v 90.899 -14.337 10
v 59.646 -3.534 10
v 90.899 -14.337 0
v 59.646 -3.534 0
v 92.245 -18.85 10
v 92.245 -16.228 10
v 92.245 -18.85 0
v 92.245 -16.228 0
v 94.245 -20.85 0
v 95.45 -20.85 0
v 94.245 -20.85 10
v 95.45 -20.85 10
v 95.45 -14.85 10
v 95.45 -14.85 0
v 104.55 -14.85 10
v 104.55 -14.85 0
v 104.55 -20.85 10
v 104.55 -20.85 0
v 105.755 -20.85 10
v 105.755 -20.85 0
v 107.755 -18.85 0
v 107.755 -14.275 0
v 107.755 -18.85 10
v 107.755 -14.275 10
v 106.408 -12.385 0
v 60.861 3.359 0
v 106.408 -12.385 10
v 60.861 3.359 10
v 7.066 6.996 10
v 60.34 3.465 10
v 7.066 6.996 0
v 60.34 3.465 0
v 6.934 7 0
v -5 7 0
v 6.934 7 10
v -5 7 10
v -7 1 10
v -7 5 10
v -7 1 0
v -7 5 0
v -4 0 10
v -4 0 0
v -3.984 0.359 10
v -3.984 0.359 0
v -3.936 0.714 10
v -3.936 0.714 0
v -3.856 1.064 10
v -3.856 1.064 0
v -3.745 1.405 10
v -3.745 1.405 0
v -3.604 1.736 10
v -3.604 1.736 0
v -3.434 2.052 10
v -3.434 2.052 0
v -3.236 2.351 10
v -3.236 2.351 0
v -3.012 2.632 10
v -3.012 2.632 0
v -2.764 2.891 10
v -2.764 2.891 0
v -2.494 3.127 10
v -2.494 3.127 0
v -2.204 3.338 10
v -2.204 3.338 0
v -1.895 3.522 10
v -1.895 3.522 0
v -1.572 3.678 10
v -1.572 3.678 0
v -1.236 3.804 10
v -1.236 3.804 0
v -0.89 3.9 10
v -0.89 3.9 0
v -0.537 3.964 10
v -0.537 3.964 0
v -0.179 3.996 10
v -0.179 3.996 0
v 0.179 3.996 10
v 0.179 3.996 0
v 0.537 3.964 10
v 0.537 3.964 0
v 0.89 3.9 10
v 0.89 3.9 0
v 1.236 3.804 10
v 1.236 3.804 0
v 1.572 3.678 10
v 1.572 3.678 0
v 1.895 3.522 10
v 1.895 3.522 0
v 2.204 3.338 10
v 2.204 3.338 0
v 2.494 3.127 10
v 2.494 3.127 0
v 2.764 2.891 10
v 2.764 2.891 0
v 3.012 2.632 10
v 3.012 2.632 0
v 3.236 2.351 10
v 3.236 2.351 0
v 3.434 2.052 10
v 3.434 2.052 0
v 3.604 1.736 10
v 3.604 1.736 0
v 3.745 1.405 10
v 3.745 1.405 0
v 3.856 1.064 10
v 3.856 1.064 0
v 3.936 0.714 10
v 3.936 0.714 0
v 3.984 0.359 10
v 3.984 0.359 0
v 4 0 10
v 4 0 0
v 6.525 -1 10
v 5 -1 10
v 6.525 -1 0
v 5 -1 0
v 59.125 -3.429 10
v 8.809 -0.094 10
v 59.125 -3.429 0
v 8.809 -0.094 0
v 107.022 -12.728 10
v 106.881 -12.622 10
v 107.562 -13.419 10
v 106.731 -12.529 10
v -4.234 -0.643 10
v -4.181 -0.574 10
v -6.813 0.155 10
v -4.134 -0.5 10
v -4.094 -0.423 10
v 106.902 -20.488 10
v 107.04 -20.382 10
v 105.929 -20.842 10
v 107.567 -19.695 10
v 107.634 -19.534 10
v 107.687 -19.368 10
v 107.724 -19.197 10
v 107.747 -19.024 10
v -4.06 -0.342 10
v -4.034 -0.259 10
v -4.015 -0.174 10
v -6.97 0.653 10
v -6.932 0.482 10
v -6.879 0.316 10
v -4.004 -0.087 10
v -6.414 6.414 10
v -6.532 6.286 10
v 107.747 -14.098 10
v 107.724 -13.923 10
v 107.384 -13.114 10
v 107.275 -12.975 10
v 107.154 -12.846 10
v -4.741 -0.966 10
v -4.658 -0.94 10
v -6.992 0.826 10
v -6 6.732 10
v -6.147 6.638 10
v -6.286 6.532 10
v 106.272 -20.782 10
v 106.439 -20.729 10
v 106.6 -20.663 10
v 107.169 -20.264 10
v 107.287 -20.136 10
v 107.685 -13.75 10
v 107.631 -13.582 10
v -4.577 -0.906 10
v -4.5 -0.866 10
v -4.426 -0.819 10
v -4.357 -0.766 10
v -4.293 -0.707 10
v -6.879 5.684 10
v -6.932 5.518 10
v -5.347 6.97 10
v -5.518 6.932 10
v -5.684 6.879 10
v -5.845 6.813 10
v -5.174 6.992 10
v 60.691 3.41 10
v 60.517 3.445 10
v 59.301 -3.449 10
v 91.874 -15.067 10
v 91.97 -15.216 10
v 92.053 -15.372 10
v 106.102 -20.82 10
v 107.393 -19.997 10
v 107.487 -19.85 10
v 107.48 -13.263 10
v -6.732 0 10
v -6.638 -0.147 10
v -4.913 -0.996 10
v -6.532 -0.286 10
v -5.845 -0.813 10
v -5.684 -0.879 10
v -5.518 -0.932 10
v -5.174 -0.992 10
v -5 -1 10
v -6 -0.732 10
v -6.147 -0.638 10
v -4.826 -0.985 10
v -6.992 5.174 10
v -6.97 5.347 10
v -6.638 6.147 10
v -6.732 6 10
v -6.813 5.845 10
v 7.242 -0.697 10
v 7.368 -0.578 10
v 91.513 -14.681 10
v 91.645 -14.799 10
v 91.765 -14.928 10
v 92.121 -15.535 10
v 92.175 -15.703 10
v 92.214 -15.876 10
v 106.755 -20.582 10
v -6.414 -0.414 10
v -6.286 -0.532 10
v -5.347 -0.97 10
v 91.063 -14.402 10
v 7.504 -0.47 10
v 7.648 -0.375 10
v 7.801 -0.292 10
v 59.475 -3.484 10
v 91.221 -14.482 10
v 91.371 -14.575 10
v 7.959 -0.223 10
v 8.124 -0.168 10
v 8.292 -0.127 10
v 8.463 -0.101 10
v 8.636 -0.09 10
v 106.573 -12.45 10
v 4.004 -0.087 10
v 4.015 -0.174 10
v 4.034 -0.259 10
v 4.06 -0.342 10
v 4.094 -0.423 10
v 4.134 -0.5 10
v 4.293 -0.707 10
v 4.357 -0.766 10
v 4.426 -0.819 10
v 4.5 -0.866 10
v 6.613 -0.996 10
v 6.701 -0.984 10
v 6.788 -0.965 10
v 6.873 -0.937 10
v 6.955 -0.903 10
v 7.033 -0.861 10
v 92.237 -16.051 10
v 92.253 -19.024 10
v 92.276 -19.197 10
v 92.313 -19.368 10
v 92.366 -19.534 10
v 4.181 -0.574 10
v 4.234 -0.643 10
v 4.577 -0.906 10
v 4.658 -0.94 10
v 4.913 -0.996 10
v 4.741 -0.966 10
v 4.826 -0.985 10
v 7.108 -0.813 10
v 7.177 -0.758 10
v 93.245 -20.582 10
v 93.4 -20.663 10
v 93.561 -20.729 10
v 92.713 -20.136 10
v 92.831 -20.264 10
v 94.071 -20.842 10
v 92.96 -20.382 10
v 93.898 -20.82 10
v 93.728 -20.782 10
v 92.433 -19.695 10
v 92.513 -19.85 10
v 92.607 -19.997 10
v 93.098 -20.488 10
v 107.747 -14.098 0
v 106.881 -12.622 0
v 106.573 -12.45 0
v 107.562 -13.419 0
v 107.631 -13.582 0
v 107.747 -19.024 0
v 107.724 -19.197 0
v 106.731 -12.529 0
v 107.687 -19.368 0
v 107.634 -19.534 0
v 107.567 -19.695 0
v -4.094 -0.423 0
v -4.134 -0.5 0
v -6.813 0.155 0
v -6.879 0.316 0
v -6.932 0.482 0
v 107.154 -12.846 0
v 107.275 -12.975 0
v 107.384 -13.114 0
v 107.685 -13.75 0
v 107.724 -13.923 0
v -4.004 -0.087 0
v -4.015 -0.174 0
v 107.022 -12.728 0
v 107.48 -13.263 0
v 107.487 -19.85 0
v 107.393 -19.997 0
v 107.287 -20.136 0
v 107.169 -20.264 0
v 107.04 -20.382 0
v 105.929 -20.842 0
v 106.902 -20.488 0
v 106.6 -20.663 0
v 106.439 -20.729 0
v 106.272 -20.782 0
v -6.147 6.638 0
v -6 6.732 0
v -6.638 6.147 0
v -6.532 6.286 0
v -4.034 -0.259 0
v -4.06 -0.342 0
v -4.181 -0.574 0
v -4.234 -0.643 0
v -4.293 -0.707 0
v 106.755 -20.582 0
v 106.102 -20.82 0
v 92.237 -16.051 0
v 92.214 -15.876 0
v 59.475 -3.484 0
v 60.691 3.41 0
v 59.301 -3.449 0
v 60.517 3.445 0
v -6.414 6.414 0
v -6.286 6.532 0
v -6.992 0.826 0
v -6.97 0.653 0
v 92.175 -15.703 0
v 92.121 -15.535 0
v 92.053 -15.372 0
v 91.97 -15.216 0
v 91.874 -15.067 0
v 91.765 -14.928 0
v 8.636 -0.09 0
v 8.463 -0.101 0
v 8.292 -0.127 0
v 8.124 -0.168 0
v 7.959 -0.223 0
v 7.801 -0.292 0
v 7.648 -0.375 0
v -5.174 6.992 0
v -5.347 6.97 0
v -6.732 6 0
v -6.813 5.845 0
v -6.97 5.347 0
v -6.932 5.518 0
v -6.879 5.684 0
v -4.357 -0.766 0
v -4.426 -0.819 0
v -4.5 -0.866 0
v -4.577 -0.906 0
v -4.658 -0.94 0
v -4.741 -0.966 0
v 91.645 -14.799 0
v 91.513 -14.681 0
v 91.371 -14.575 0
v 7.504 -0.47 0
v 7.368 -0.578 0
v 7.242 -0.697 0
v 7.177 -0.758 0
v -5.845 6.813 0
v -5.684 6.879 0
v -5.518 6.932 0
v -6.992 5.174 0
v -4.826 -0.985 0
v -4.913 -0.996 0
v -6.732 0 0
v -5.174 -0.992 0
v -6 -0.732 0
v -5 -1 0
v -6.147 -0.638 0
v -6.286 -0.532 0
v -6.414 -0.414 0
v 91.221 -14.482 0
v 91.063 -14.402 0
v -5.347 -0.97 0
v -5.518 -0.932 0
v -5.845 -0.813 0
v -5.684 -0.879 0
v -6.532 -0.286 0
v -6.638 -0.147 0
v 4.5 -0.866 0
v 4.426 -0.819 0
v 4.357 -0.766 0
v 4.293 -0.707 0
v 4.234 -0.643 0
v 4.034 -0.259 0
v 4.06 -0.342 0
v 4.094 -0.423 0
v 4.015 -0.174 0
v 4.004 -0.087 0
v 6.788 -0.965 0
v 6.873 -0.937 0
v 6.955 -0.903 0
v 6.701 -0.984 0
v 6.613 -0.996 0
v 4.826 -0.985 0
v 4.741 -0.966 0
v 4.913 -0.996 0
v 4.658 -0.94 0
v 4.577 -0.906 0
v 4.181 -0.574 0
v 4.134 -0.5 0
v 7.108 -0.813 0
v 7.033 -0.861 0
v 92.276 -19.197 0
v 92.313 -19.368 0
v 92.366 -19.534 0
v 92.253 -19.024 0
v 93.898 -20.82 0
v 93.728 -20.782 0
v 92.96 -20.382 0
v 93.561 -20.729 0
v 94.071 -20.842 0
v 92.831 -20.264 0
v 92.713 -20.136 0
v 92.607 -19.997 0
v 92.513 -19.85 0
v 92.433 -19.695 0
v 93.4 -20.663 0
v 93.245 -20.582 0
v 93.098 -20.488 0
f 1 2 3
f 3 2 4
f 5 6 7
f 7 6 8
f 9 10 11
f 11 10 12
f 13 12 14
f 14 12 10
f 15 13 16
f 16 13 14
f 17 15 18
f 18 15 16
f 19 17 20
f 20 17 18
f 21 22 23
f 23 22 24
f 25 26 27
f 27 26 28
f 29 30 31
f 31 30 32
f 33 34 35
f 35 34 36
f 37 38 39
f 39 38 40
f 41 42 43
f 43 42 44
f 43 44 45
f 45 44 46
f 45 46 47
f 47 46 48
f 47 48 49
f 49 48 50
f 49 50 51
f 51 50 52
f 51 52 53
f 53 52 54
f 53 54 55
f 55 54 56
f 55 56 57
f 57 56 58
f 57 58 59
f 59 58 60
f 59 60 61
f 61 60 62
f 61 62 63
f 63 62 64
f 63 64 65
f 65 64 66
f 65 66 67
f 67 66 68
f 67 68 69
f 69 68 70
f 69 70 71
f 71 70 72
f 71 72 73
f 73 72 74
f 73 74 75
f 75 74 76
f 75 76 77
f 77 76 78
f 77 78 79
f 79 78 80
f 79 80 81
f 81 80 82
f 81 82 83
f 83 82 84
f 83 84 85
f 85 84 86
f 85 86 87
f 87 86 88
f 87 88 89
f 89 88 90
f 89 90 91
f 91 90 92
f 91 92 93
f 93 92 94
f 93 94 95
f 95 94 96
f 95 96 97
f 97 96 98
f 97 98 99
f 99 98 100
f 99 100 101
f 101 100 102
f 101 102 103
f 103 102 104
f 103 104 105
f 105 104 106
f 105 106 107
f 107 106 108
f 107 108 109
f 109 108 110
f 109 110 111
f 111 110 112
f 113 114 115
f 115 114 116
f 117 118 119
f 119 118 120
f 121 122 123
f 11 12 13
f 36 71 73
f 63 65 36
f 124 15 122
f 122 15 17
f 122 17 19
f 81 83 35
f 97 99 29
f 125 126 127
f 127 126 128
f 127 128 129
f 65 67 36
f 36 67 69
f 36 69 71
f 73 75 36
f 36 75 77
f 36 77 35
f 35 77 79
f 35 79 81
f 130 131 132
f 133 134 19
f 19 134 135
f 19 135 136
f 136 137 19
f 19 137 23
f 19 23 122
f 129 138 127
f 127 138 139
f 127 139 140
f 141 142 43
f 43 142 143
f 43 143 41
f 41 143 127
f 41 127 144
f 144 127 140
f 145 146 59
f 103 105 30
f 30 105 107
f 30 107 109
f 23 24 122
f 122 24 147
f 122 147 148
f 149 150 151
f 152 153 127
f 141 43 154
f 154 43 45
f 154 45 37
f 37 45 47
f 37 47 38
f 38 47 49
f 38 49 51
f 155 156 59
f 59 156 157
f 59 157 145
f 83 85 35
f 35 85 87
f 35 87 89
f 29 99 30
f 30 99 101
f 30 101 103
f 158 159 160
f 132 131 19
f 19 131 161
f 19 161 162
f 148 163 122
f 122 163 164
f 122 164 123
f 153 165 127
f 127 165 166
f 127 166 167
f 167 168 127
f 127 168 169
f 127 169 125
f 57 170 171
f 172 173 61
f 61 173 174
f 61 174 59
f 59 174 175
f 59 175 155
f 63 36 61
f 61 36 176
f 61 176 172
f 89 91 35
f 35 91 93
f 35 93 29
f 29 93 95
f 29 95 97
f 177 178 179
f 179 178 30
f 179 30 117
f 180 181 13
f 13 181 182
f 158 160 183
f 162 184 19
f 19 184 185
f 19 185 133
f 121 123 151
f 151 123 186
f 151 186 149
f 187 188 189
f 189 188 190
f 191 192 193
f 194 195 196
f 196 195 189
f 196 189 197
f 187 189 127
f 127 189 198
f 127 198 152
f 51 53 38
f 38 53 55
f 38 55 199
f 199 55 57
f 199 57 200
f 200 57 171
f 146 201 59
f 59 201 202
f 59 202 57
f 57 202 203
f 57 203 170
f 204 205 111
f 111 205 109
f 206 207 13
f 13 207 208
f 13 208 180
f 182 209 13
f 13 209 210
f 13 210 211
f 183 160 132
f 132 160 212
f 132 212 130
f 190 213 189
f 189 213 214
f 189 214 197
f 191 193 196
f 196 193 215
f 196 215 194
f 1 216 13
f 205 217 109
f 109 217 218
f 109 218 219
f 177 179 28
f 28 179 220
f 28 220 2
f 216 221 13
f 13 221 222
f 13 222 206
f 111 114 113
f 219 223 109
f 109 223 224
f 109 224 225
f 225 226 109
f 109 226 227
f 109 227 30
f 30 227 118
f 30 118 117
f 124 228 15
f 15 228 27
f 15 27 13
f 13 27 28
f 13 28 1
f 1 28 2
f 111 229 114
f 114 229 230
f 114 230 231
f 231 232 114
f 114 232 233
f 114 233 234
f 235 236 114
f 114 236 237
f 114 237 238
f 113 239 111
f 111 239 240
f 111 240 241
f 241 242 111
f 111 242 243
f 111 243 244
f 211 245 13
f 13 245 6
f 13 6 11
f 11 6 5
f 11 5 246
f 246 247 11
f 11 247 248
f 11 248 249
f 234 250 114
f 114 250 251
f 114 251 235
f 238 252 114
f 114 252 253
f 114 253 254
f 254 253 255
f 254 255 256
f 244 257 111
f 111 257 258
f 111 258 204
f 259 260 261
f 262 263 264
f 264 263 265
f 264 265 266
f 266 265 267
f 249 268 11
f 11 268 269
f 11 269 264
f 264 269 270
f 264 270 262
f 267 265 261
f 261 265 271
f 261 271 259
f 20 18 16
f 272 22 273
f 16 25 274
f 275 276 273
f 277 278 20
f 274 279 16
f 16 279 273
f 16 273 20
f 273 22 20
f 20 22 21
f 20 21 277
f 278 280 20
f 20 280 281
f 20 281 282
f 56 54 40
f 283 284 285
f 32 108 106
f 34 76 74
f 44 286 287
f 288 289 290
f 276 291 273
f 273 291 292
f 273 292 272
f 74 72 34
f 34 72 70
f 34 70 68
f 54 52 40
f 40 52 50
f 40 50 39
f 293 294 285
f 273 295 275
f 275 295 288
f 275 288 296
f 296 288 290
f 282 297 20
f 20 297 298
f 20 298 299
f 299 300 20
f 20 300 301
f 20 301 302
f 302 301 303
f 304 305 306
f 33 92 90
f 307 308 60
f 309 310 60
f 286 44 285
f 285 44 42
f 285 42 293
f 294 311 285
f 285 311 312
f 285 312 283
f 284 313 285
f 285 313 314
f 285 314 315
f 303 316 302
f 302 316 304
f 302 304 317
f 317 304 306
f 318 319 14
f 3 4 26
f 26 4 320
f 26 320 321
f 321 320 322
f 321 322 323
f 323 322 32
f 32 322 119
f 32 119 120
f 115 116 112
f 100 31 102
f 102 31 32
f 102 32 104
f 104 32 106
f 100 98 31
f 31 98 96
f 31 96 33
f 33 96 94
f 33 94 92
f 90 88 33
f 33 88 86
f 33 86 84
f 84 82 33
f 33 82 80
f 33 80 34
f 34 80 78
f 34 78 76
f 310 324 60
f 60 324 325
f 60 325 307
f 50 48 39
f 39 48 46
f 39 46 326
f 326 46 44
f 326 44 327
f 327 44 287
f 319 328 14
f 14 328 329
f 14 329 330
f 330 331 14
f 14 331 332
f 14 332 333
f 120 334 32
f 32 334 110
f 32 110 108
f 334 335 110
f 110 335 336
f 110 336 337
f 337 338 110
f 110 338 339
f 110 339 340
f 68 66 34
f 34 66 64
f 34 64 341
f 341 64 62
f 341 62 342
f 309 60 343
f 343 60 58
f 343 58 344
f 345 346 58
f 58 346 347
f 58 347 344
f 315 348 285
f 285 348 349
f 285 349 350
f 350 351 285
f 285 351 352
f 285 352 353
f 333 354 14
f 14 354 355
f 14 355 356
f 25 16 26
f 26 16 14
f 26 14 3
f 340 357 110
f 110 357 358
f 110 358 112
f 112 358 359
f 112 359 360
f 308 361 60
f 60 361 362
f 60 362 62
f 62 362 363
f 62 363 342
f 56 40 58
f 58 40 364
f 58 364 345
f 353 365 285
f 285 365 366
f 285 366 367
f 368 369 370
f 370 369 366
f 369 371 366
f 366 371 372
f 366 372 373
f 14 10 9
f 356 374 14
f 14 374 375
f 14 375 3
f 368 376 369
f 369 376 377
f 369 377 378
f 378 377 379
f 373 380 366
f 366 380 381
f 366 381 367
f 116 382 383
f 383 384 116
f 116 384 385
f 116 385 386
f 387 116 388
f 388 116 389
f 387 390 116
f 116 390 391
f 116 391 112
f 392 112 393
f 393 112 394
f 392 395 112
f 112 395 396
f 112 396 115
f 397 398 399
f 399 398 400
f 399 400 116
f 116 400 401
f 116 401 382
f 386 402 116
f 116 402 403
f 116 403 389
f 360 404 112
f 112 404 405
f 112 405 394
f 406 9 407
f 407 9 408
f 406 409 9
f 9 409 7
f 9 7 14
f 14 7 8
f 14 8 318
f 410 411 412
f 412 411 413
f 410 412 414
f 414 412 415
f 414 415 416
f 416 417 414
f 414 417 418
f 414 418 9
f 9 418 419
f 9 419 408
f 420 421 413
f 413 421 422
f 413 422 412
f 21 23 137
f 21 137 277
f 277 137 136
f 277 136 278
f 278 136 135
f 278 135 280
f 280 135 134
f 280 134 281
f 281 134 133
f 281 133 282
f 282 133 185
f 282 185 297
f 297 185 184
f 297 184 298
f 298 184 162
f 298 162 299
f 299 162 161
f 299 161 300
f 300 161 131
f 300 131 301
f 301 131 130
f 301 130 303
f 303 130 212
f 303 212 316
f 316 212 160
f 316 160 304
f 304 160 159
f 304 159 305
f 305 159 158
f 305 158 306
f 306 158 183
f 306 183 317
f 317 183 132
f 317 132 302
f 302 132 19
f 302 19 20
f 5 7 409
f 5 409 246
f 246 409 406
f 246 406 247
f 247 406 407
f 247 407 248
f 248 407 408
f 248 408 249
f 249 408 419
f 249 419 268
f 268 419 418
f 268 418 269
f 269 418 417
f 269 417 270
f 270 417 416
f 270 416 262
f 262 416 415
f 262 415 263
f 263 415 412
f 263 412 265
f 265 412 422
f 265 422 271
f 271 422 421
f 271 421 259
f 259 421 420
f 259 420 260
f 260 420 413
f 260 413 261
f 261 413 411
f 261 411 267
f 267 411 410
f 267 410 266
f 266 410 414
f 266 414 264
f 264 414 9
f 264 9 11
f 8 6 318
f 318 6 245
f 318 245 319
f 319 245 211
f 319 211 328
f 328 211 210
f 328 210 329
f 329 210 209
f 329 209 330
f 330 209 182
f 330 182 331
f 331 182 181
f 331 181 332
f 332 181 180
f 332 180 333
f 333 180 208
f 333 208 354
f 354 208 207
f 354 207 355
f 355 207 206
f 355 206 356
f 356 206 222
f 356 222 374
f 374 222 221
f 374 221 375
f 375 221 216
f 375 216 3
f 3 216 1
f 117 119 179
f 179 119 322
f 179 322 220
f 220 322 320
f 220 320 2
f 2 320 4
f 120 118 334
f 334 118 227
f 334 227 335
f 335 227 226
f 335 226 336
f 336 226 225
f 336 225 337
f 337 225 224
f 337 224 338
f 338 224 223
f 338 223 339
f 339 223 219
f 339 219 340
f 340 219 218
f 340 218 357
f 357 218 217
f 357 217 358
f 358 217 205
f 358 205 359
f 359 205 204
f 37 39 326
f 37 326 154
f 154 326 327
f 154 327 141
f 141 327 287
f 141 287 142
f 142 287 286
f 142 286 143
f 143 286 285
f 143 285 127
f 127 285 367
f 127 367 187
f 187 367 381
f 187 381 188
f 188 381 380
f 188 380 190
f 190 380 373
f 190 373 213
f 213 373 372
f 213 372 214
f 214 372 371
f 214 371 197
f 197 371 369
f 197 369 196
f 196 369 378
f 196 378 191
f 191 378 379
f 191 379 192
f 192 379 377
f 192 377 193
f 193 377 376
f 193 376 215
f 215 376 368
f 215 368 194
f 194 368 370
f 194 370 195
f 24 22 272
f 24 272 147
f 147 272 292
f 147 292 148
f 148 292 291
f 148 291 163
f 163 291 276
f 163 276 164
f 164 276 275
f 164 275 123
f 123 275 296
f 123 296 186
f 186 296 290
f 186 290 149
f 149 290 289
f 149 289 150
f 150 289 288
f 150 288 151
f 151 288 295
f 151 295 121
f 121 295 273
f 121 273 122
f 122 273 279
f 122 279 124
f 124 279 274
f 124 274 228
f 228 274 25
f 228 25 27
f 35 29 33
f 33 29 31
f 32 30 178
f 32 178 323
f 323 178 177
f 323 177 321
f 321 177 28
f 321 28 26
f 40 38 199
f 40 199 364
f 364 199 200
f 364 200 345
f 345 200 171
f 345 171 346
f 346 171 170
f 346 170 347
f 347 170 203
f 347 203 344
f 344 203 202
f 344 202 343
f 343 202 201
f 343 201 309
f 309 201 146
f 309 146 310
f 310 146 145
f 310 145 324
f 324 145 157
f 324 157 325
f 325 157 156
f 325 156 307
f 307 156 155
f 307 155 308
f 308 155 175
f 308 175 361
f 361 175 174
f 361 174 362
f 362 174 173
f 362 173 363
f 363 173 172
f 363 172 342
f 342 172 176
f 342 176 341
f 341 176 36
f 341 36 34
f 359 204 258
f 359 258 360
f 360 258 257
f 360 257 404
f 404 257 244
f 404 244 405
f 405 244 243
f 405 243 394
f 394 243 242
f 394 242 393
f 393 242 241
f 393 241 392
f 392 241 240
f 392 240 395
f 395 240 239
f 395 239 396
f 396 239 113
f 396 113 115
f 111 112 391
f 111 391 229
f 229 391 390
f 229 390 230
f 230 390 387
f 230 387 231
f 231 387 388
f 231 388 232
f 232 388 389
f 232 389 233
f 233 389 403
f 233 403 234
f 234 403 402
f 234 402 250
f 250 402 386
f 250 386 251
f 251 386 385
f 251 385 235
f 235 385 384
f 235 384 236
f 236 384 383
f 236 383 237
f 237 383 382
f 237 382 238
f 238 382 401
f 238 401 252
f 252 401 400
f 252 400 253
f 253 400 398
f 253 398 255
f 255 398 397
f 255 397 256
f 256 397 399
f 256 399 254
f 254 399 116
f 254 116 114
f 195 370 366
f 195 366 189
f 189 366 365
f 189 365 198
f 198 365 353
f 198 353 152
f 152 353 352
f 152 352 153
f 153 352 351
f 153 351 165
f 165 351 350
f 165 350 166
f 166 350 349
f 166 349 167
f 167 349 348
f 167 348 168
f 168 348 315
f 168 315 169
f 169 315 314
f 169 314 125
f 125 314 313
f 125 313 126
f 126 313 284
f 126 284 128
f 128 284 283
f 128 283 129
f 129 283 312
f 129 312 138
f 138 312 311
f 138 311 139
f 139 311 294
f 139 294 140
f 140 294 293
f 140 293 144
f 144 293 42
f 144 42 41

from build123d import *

# Parameters (mm, degrees)
EXTRUDE_1_DEPTH = 10
FILLET_1_R      = 2
FILLET_2_R      = 1


# Some blends are built 0.0001 mm under size
with BuildPart() as part:
    # Эскиз1 → Бобышка-Вытянуть1 (new body)
    with BuildSketch(Plane.XY):
        with BuildLine():
            ThreePointArc((3.872983346, -1), (0, 4), (-3.872983346, -1))
            Line((-3.872983346, -1), (-7, -1))
            Line((-7, -1), (-7, 7))
            Line((-7, 7), (7, 7))
            Line((7, 7), (7, -1))
            Line((7, -1), (3.872983346, -1))
        make_face()
        Polygon((7, 0.025778788), (59.392231378, -3.446827136), (60.607768622, 3.446827136), (7, 7), align=None)
        Polygon((59.392231378, -3.446827136), (92.245234414, -14.802793492), (92.245234414, -12.85), (107.754765586, -12.85), (60.607768622, 3.446827136), align=None)
        Polygon((104.55, -14.85), (104.55, -20.85), (107.754765586, -20.85), (107.754765586, -12.85), (92.245234414, -12.85), (92.245234414, -20.85), (95.45, -20.85), (95.45, -14.85), align=None)
    extrude(amount=EXTRUDE_1_DEPTH)

    # Скругление1
    # the kernel refuses this fillet: 2 mm, written as the material it adds along each edge
    with BuildSketch(Plane(origin=(59.392231378, -3.446827136, 0), x_dir=(0.9451302843245073, -0.32669365719688503, 0), z_dir=(0, 0, 1))) as fillet_1_piece_1:
        with BuildLine():
            CenterArc((FILLET_1_R * 0.134104869986, -FILLET_1_R), FILLET_1_R, 90, 15.276145222)
            Line((-FILLET_1_R * 0.129366569023, -FILLET_1_R * 0.0353328030732), (0, 0))
            Line((0, 0), (FILLET_1_R * 0.134104869986, 0))
        make_face()
    extrude(amount=10)
    with BuildSketch(Plane(origin=(7, 0.025778788, 0), x_dir=(0, -1, 0), z_dir=(0, 0, 1))) as fillet_1_piece_2:
        with BuildLine():
            CenterArc((2.115543143, 1.677025238), FILLET_1_R, 176.207928907, 60.775458648)
            Line((0.119921883, 1.809296875), (0, 0))
            Line((0, 0), (1.025778788, 0))
        make_face()
    extrude(amount=10)
    with BuildSketch(Plane(origin=(92.245234414, -14.802793492, 0), x_dir=(-0.945130284324508, 0.3266936571968835, 0), z_dir=(0, 0, 1))) as fillet_1_piece_3:
        with BuildLine():
            CenterArc((FILLET_1_R * 0.712395268642, FILLET_1_R), FILLET_1_R, 199.068216315, 70.931783685)
            Line((-FILLET_1_R * 0.232735015682, FILLET_1_R * 0.673306342803), (0, 0))
            Line((0, 0), (FILLET_1_R * 0.712395268642, 0))
        make_face()
    extrude(amount=10)
    # the kernel refuses this fillet: 2 mm, written as the material it takes off along each edge
    with BuildSketch(Plane(origin=(-7, -1, -5), x_dir=(1, 0, 0), z_dir=(0, 0, 1)), Plane(origin=(-7, 7, -5), x_dir=(0, -1, 0), z_dir=(0, 0, 1)), Plane(origin=(107.754765586, -20.85, -5), x_dir=(0, 1, 0), z_dir=(0, 0, 1)), Plane(origin=(92.245234414, -20.85, -5), x_dir=(1, 0, 0), z_dir=(0, 0, 1))) as fillet_1_2_piece_1:
        with BuildLine():
            CenterArc((FILLET_1_R, FILLET_1_R), FILLET_1_R, 180, 90)
            Line((0, FILLET_1_R), (0, 0))
            Line((0, 0), (FILLET_1_R, 0))
        make_face()
    extrude(amount=20, mode=Mode.SUBTRACT)
    with BuildSketch(Plane(origin=(107.754765586, -12.85, -3.561976343), x_dir=(-0.9451302843245086, 0.3266936571968812, 0), z_dir=(0, 0, 1))) as fillet_1_2_piece_2:
        with BuildLine():
            CenterArc((FILLET_1_R * 0.712395268642, FILLET_1_R), FILLET_1_R, 199.068216315, 70.931783685)
            Line((-FILLET_1_R * 0.232735015682, FILLET_1_R * 0.673306342803), (0, 0))
            Line((0, 0), (FILLET_1_R * 0.712395268642, 0))
        make_face()
    extrude(amount=17.123952686, mode=Mode.SUBTRACT)
    with BuildSketch(Plane(origin=(7, 7, -0.165520739), x_dir=(-1, 0, 0), z_dir=(0, 0, 1))) as fillet_1_2_piece_3:
        with BuildLine():
            CenterArc((FILLET_1_R * 0.0331041478527, FILLET_1_R), FILLET_1_R, 266.207928907, 3.792071093)
            Line((-FILLET_1_R * 0.0330316706273, FILLET_1_R * 0.00218936991332), (0, 0))
            Line((0, 0), (FILLET_1_R * 0.0331041478527, 0))
        make_face()
    extrude(amount=10.331041479, mode=Mode.SUBTRACT)
    with BuildSketch(Plane(origin=(60.607768622, 3.446827136, -0.67052435), x_dir=(-0.9978106300866822, 0.06613581847999181, 0), z_dir=(0, 0, 1))) as fillet_1_2_piece_4:
        with BuildLine():
            CenterArc((FILLET_1_R * 0.134104869986, FILLET_1_R), FILLET_1_R, 254.723854778, 15.276145222)
            Line((-FILLET_1_R * 0.129366569023, FILLET_1_R * 0.0353328030732), (0, 0))
            Line((0, 0), (FILLET_1_R * 0.134104869986, 0))
        make_face()
    extrude(amount=11.3410487, mode=Mode.SUBTRACT)

    # Скругление2
    fillet_2_edges = [part.edges().sort_by_distance(p)[0] for p in [
        (7, -1, 5),
        (3.872983346, -1, 5),
        (-3.872983346, -1, 5),
    ]]
    fillet(fillet_2_edges, radius=FILLET_2_R - 0.0001)  # a hair under: the kernel refuses the full size


solid = part.part
